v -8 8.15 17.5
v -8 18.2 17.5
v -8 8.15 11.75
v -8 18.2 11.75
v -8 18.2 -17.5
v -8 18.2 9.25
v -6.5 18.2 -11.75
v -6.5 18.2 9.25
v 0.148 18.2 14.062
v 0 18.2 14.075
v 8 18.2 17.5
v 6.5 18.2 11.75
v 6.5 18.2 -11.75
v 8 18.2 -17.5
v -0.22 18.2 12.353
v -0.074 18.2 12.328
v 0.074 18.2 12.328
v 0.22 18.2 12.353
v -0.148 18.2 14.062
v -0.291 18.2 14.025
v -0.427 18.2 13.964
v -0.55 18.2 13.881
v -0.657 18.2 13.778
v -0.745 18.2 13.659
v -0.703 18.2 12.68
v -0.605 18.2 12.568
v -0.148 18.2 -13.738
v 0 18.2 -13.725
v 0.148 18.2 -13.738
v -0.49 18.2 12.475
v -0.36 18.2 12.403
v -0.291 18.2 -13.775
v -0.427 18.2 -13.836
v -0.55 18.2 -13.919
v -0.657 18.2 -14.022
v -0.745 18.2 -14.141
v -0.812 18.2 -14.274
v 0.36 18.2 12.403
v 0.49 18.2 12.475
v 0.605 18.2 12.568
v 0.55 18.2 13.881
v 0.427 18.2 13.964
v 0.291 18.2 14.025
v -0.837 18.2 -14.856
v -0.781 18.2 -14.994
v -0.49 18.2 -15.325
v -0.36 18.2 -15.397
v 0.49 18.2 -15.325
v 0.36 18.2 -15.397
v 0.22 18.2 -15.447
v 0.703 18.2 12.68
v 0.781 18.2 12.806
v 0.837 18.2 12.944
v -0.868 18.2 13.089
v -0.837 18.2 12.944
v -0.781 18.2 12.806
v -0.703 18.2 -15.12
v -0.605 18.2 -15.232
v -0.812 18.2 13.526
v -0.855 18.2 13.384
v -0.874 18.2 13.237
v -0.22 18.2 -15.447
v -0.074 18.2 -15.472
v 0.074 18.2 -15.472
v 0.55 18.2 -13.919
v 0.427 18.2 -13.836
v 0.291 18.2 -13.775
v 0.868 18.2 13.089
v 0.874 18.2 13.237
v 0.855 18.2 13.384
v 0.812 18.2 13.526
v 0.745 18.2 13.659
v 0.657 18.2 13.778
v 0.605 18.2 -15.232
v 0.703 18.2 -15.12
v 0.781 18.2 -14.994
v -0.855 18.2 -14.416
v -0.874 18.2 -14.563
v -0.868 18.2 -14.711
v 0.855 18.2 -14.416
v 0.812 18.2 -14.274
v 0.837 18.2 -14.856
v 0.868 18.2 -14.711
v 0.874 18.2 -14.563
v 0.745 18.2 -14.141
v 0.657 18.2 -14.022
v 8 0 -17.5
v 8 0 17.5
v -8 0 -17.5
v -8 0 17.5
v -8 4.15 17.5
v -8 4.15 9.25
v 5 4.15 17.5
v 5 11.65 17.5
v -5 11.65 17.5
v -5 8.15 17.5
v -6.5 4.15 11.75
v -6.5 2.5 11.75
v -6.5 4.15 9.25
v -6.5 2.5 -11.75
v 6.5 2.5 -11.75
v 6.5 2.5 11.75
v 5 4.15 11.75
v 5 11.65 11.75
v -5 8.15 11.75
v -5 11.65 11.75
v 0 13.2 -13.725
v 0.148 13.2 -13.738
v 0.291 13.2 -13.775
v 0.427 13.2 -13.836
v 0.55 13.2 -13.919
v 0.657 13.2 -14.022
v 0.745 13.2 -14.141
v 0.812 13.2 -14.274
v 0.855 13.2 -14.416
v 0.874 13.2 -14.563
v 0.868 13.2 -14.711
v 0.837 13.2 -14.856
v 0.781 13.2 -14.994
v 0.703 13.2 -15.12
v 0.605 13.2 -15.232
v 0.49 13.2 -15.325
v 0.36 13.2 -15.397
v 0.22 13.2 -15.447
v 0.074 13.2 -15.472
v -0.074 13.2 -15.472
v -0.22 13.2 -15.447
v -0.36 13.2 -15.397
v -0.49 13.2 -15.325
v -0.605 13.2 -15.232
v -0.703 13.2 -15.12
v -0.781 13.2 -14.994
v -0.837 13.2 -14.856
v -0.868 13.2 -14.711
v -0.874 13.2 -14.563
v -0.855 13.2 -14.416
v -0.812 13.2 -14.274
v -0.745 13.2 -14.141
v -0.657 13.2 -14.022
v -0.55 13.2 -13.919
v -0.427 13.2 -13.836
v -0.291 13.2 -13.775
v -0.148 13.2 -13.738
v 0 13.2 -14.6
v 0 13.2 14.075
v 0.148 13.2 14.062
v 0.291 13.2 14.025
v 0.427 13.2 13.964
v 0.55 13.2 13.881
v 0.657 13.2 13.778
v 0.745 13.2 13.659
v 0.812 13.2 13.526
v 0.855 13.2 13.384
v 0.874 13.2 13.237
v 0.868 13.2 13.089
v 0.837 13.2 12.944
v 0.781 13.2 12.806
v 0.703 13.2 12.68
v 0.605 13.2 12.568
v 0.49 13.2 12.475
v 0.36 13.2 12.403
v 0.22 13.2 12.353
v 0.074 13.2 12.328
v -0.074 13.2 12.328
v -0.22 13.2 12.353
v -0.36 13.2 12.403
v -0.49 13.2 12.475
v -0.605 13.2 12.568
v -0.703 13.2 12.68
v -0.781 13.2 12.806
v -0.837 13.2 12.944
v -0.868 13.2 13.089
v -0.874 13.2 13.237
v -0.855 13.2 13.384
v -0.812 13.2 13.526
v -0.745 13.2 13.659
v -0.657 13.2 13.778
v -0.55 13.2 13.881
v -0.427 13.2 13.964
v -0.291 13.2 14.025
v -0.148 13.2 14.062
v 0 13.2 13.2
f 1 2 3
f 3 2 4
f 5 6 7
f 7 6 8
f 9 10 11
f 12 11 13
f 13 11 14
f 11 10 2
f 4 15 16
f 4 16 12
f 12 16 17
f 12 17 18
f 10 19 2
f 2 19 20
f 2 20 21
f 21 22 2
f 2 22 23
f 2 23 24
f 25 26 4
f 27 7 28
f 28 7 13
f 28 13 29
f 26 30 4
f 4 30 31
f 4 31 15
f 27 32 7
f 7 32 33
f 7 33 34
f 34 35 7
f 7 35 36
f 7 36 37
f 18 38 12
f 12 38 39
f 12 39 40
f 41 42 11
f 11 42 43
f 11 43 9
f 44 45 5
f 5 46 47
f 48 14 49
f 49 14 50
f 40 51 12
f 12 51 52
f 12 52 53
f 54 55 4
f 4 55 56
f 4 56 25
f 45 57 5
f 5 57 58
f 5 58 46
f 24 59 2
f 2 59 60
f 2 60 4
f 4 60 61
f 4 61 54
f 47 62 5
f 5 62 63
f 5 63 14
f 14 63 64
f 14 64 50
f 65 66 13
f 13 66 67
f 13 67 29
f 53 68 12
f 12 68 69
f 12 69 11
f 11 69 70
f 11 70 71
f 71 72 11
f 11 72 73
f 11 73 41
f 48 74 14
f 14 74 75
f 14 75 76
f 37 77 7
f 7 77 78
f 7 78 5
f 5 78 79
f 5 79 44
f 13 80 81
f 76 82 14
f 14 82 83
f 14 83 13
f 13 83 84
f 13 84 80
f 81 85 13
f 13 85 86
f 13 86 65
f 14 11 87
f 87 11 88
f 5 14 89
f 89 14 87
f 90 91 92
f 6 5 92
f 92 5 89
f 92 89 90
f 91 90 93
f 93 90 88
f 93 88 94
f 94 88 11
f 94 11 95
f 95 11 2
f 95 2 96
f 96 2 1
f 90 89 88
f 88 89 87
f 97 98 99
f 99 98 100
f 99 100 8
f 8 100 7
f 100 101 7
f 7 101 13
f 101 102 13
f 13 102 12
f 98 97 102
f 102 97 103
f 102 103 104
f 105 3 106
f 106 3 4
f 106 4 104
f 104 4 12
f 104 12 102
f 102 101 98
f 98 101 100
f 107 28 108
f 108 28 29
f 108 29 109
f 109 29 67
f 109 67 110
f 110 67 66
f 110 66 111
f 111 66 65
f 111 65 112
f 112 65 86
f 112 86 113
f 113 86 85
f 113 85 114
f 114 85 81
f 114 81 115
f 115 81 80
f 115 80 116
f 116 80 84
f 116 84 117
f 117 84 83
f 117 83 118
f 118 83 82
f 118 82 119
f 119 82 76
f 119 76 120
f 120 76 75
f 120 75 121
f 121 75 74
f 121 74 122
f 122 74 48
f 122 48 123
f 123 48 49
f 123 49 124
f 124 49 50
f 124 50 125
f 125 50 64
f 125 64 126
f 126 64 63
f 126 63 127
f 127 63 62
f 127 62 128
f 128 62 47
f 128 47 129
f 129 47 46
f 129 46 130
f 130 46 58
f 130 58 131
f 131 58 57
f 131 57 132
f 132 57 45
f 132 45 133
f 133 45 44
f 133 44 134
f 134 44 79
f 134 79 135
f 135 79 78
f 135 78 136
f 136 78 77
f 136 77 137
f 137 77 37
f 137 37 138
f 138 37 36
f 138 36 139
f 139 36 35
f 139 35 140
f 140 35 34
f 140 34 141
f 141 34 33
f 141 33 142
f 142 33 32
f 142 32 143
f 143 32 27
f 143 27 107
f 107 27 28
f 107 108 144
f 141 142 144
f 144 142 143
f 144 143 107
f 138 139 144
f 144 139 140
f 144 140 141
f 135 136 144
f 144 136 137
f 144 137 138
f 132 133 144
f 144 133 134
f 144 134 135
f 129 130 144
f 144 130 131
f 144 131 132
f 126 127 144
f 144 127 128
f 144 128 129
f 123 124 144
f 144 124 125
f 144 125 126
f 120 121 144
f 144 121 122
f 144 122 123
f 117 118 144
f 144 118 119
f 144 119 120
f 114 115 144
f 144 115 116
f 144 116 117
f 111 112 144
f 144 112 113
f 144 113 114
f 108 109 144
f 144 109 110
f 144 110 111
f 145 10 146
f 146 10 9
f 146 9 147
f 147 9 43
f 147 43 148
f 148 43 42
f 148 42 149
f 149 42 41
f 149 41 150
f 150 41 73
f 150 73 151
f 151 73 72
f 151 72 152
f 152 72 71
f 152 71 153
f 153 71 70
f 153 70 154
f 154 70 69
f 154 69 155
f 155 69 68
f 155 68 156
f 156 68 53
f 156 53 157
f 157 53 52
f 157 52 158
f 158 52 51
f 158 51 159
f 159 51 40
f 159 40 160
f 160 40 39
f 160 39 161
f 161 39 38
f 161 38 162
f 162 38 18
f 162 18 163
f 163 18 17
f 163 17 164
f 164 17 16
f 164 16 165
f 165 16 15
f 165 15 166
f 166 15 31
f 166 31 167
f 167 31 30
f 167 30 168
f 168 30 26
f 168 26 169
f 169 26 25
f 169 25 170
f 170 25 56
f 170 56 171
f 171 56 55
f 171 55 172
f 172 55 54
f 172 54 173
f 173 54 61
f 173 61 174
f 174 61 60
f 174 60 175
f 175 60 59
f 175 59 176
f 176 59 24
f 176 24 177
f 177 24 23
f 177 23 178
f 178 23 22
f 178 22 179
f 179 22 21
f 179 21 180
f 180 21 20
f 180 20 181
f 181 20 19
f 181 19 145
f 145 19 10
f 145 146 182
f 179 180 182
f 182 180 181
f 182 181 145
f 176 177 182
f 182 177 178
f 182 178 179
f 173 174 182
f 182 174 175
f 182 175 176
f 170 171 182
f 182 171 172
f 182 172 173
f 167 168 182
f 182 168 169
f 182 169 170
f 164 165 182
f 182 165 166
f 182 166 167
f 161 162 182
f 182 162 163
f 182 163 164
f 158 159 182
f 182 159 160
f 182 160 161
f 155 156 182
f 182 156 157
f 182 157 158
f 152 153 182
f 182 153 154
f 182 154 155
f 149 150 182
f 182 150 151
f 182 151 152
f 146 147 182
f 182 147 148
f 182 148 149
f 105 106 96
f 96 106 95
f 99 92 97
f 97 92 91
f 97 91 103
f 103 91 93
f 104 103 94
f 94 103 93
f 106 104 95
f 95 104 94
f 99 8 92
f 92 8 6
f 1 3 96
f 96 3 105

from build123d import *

# Parameters (mm, degrees)
SKETCH1_W           = 16
SKETCH1_H           = 35
BOSS_EXTRUDE1_DEPTH = 18.2
SKETCH2_W           = 13
SKETCH2_H           = 23.5
CUT_EXTRUDE1_DEPTH  = 15.7
SKETCH3_R           = 0.875
CUT_EXTRUDE2_DEPTH  = 5
SKETCH4_W           = 10
SKETCH4_H           = 7.5
CUT_EXTRUDE3_DEPTH  = 5.75
SKETCH5_W           = 2.5
SKETCH5_H           = 12.5
CUT_EXTRUDE4_DEPTH  = 1.5
SKETCH6_W           = 8.25
SKETCH6_H           = 4
CUT_EXTRUDE5_DEPTH  = 3


with BuildPart() as part:
    # Sketch1 → Boss-Extrude1 (new body)
    with BuildSketch(Plane(origin=(0, 0, 0), x_dir=(1, 0, 0), z_dir=(0, 1, 0))):
        Rectangle(SKETCH1_W, SKETCH1_H)
    extrude(amount=BOSS_EXTRUDE1_DEPTH)

    # Sketch2 → Cut-Extrude1 (cut)
    with BuildSketch(Plane(origin=(0, 18.2, 0), x_dir=(1, 0, 0), z_dir=(0, 1, 0))):
        Rectangle(SKETCH2_W, SKETCH2_H)
    extrude(amount=-CUT_EXTRUDE1_DEPTH, mode=Mode.SUBTRACT)

    # Sketch3 → Cut-Extrude2 (cut)
    with BuildSketch(Plane(origin=(0, 18.2, 0), x_dir=(1, 0, 0), z_dir=(0, 1, 0))):
        with Locations(Location((0, -13.2, 0), (0, 0, 270))):
            Circle(SKETCH3_R)
        with Locations(Location((0, 14.6, 0), (0, 0, 270))):
            Circle(SKETCH3_R)
    extrude(amount=-CUT_EXTRUDE2_DEPTH, mode=Mode.SUBTRACT)

    # Sketch4 → Cut-Extrude3 (cut)
    with BuildSketch(Plane(origin=(0, 0, 11.75), x_dir=(-1, 0, 0), z_dir=(0, 0, -1))):
        with Locations((0, 7.9)):
            Rectangle(SKETCH4_W, SKETCH4_H)
    extrude(amount=-CUT_EXTRUDE3_DEPTH, mode=Mode.SUBTRACT)

    # Sketch5 → Cut-Extrude4 (cut)
    with BuildSketch(Plane.ZY.offset(8)):
        with Locations((10.5, 11.95)):
            Rectangle(SKETCH5_W, SKETCH5_H)
    extrude(amount=-CUT_EXTRUDE4_DEPTH, mode=Mode.SUBTRACT)

    # Sketch6 → Cut-Extrude5 (cut)
    with BuildSketch(Plane.ZY.offset(8)):
        with Locations((13.375, 6.15)):
            Rectangle(SKETCH6_W, SKETCH6_H)
    extrude(amount=-CUT_EXTRUDE5_DEPTH, mode=Mode.SUBTRACT)


solid = part.part
